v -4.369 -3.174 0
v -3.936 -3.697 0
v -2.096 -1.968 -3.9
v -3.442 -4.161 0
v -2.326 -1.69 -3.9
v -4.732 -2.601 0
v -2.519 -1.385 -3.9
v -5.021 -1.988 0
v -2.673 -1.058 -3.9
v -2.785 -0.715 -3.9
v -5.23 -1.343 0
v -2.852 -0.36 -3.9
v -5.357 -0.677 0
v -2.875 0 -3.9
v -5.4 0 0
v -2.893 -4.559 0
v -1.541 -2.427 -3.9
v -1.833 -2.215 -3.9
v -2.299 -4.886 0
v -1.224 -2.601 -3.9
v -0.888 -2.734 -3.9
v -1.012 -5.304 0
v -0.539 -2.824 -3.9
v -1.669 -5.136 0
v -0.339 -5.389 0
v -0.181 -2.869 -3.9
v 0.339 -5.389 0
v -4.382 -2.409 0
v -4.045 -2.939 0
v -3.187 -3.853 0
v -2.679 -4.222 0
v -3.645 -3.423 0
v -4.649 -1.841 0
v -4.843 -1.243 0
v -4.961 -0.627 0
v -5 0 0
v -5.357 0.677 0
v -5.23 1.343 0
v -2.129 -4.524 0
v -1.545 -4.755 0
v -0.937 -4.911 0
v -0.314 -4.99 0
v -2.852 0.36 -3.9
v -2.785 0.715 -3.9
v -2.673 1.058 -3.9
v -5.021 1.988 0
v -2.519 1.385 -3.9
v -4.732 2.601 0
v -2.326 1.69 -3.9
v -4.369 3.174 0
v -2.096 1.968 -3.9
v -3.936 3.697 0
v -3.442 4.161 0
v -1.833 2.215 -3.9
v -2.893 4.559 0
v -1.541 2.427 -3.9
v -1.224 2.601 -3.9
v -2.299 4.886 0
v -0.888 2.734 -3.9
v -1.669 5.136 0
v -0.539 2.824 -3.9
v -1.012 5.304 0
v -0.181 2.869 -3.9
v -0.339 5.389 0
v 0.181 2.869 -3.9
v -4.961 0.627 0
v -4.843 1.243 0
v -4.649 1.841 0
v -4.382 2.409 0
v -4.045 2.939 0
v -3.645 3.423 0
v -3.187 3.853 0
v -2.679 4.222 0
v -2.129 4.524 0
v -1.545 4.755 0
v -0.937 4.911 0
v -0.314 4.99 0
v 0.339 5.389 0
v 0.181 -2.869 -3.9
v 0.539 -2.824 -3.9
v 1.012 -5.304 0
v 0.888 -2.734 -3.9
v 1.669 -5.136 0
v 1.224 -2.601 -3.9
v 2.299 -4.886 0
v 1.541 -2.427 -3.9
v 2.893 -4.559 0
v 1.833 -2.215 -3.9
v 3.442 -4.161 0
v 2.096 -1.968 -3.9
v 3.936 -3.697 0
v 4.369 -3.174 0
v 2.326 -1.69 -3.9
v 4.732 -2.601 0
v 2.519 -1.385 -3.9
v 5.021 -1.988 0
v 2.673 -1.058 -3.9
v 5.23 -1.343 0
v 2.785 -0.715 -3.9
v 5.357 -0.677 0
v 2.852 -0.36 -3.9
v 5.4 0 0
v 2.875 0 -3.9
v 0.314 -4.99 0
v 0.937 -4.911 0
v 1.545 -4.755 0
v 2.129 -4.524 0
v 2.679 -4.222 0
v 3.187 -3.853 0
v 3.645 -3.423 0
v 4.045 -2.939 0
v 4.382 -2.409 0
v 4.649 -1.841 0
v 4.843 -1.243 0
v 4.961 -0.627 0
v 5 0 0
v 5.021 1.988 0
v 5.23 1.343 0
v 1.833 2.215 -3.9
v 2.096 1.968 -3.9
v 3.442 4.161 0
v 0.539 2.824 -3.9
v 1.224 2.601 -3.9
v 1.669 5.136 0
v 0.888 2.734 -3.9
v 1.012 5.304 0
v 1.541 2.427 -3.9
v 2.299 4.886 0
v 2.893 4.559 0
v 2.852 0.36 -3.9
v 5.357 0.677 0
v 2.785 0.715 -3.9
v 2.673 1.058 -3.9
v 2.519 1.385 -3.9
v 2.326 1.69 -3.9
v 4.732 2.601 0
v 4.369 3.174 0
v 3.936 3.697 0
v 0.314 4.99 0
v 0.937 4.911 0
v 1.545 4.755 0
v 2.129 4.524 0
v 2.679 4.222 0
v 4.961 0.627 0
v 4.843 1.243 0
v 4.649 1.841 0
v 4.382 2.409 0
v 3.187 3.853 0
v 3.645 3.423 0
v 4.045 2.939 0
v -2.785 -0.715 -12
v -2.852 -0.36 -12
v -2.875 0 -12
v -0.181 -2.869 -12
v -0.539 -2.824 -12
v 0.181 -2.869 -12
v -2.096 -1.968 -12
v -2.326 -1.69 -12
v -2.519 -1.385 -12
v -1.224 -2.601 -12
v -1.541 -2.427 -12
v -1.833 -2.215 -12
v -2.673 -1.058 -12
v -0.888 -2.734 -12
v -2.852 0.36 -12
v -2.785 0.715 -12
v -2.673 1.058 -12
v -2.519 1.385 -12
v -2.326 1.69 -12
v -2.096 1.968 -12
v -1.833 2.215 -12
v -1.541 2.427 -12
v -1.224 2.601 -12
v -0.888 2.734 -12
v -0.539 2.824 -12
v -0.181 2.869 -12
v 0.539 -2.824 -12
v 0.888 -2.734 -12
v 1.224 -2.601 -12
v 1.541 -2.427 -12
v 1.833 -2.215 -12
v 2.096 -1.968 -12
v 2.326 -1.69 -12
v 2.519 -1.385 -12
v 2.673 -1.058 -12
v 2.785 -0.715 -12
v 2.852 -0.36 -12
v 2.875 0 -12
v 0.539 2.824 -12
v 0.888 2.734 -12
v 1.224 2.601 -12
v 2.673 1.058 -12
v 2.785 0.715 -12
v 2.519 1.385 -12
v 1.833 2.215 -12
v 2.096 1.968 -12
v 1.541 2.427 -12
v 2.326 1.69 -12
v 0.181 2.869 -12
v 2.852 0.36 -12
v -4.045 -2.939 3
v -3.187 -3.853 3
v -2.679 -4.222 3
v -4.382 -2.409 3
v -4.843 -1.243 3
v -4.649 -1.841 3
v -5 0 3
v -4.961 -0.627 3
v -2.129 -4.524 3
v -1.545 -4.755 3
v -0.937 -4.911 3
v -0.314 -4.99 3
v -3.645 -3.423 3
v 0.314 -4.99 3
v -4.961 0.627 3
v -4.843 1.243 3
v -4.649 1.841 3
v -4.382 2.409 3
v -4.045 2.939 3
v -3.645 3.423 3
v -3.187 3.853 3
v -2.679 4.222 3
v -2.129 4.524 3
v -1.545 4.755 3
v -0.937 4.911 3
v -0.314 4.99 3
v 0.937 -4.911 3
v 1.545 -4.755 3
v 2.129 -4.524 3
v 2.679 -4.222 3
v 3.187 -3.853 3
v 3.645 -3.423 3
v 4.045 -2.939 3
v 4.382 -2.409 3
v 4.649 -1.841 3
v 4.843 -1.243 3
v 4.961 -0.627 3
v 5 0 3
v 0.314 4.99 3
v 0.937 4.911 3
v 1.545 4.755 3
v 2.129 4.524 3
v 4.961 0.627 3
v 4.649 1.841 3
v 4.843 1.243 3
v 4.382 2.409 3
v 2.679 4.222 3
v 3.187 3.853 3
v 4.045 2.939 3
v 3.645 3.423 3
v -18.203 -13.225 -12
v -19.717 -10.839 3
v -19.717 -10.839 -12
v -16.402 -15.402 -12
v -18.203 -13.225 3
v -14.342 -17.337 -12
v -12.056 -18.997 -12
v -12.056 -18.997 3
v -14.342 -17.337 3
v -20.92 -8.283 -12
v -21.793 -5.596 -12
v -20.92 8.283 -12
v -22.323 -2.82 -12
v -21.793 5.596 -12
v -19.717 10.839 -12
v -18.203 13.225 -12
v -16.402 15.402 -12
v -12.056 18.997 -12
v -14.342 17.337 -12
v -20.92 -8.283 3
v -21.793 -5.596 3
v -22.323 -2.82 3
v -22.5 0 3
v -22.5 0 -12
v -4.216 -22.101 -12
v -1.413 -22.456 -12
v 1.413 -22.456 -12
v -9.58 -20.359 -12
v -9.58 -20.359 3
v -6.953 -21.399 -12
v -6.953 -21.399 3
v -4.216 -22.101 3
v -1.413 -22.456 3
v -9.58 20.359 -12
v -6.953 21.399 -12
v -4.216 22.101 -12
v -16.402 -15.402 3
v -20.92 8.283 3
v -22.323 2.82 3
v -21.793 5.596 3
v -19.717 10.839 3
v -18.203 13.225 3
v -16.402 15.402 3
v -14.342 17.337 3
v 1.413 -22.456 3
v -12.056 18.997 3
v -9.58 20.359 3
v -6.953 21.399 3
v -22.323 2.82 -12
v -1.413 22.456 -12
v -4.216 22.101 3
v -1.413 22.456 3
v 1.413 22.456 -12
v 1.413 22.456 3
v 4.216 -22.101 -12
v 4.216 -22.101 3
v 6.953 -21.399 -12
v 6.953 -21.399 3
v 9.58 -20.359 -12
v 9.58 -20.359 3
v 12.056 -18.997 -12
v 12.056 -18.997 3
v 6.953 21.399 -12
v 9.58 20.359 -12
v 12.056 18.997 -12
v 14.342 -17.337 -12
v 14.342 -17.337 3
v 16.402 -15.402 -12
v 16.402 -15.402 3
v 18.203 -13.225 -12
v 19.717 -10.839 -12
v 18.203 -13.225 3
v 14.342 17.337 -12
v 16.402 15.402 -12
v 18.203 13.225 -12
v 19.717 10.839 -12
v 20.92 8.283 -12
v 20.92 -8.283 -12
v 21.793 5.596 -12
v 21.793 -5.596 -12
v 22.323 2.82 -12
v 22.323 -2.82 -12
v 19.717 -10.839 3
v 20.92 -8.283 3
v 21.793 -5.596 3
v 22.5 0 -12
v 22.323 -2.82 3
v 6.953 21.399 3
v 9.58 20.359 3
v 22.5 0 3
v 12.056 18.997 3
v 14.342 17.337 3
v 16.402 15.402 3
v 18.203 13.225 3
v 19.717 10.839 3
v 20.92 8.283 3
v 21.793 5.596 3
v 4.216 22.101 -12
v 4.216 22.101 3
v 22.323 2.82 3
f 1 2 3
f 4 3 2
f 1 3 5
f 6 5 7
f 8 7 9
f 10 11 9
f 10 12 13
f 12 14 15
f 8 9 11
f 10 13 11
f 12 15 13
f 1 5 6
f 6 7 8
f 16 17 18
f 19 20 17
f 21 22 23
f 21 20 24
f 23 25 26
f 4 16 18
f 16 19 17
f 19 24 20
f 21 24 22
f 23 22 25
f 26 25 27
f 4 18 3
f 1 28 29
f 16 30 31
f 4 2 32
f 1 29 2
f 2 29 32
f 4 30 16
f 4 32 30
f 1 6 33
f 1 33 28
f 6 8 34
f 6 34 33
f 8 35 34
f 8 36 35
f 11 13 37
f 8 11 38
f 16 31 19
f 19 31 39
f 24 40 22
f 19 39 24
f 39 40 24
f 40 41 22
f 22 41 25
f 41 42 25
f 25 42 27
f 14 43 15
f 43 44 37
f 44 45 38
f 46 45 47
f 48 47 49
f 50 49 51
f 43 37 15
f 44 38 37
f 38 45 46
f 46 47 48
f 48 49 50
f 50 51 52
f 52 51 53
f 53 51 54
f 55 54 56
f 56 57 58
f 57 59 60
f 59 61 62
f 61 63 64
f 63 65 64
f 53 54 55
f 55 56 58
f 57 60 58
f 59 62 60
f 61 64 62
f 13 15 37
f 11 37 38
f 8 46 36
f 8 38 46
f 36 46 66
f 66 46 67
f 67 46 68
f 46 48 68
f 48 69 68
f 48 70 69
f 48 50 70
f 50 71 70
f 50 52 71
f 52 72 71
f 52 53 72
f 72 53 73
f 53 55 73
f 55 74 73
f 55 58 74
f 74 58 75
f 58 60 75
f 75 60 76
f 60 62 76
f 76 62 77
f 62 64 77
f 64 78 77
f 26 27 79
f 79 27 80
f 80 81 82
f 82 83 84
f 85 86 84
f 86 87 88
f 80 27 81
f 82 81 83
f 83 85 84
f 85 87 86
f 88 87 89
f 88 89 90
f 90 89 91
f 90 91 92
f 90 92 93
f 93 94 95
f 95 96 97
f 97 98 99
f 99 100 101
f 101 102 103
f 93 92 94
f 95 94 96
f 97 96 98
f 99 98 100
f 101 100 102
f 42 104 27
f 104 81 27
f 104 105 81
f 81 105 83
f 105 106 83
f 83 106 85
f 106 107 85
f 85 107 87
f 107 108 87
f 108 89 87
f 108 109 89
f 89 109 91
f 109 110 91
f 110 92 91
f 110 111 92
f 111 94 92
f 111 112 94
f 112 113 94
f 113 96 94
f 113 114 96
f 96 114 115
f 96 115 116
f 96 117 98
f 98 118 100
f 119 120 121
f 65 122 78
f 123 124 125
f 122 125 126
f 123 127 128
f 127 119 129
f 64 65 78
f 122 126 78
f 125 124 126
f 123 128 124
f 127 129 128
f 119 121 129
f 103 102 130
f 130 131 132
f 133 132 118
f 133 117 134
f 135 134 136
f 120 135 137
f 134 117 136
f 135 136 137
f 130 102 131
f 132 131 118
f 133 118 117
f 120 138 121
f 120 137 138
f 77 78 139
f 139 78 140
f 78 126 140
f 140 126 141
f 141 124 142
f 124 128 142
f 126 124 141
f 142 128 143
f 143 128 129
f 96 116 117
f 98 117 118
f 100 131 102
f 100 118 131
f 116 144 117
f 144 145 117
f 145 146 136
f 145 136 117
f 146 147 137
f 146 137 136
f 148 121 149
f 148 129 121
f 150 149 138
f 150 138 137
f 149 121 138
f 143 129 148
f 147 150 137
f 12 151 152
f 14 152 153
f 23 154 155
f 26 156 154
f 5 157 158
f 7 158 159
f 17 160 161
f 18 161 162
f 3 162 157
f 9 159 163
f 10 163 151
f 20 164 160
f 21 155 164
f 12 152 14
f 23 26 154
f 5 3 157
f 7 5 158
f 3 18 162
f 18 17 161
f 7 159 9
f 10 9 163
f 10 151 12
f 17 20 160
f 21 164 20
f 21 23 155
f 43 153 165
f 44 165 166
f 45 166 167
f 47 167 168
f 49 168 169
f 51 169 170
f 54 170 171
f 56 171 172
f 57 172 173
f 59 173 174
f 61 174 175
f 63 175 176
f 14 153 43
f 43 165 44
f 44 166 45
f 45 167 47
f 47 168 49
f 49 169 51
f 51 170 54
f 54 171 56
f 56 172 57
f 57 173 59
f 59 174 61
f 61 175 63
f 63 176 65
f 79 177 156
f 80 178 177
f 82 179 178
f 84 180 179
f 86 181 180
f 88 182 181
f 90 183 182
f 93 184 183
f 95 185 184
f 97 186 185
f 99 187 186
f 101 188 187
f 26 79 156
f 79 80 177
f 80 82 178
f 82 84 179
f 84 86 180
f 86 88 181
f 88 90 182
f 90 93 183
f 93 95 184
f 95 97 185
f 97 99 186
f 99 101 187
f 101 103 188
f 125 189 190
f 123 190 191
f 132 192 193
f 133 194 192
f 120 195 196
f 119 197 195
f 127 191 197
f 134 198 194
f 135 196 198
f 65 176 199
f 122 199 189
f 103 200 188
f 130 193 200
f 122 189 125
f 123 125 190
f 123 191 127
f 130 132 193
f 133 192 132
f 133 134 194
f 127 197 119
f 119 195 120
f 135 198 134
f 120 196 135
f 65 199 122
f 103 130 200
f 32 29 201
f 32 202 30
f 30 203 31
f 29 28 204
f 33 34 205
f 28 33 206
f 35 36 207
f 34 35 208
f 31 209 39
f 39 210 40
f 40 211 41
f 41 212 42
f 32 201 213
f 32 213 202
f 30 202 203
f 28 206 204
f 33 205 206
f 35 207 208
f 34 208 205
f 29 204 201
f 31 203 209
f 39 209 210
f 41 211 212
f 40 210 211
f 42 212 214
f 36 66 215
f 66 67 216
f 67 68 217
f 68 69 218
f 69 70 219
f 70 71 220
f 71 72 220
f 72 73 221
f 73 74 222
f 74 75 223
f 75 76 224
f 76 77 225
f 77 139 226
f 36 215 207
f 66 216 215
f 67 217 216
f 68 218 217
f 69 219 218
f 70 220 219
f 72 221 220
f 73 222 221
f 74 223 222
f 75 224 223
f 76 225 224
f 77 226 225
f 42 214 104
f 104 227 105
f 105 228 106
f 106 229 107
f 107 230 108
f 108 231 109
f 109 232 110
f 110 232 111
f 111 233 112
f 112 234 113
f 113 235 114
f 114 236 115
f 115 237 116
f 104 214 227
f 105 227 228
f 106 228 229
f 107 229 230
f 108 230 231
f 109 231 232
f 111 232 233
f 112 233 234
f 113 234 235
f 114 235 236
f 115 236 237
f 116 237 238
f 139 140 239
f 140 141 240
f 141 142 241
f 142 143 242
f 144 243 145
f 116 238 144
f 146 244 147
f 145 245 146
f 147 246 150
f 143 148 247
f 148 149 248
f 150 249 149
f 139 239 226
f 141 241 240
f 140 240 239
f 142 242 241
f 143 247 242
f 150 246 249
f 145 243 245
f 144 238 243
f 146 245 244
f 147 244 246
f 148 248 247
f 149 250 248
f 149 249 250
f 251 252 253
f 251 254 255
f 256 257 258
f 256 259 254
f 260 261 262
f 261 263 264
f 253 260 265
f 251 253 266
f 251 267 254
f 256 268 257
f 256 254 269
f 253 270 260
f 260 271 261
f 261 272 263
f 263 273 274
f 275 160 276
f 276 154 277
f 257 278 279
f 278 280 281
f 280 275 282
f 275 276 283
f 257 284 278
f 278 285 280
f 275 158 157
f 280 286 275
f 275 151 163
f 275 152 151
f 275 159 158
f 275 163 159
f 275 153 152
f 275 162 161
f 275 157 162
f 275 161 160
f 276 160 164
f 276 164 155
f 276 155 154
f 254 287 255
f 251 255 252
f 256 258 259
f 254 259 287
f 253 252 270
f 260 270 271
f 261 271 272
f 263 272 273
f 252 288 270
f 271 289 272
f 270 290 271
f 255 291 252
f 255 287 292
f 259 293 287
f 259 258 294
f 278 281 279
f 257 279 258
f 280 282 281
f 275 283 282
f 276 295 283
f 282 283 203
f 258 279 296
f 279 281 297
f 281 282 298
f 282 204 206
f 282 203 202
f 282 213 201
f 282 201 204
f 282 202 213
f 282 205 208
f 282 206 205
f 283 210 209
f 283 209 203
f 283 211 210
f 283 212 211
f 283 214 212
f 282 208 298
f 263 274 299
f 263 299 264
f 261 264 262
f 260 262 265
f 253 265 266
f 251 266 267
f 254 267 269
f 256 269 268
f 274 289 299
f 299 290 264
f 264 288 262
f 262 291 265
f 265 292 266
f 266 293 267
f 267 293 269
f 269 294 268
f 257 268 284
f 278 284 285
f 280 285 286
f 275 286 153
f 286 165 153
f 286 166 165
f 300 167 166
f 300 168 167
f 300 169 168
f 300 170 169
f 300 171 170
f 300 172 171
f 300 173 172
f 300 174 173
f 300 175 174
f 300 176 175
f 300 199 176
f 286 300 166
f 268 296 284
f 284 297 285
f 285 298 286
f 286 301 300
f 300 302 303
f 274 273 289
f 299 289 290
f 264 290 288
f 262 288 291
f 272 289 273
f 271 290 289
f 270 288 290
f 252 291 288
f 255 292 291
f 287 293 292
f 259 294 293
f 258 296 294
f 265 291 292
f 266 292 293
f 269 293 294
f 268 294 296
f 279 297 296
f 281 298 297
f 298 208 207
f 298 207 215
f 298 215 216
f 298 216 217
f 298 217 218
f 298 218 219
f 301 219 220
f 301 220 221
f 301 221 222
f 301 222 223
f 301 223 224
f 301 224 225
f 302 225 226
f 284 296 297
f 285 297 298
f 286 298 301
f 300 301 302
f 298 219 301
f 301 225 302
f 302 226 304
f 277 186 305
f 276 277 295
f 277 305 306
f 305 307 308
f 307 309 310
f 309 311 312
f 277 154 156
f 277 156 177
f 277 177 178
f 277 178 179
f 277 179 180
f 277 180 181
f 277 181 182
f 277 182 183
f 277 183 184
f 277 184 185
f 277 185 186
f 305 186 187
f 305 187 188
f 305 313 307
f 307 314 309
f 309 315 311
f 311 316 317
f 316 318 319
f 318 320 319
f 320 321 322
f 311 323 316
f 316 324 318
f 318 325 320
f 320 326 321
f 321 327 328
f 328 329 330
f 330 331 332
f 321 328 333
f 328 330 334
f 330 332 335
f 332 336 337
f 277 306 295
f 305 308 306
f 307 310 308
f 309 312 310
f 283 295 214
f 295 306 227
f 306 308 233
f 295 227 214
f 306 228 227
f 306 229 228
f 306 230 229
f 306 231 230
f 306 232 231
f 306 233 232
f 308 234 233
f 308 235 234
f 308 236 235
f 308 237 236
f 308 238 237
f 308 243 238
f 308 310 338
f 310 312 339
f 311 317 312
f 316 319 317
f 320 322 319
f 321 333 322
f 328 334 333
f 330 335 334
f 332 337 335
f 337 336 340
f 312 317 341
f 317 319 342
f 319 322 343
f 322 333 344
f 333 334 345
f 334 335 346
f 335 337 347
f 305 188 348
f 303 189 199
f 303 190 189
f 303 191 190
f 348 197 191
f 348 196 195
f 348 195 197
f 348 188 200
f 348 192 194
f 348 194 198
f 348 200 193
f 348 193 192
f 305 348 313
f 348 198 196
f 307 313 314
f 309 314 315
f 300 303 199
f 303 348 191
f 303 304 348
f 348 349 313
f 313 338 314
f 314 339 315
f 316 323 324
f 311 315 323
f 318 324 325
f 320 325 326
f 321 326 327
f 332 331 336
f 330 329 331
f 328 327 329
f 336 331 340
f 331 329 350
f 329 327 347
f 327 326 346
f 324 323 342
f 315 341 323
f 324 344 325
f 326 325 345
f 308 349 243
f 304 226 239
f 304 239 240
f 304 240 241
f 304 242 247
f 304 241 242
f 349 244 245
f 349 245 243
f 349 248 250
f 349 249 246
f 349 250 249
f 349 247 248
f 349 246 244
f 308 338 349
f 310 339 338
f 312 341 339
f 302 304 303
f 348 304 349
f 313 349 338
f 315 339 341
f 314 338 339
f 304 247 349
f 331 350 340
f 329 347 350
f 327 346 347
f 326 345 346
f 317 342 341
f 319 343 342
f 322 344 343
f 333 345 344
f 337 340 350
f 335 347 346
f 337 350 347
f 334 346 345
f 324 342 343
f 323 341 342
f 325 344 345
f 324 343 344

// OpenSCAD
$fn = 50;


difference() {
	union() {
		translate(v = [0, 0, -12.0000000000]) {
			cylinder(h = 15, r = 22.5000000000);
		}
	}
	union() {
		translate(v = [0, 0, 0]) {
			rotate(a = [0, 0, 0]) {
				difference() {
					union() {
						translate(v = [0, 0, -15.0000000000]) {
							cylinder(h = 15, r = 2.6000000000);
						}
						translate(v = [0, 0, -3.9000000000]) {
							cylinder(h = 3.9000000000, r1 = 2.8750000000, r2 = 5.4000000000);
						}
						translate(v = [0, 0, -15.0000000000]) {
							cylinder(h = 15, r = 2.8750000000);
						}
						translate(v = [0, 0, -15.0000000000]) {
							cylinder(h = 15, r = 2.6000000000);
						}
					}
					union();
				}
			}
		}
		#cylinder(h = 3, r = 5.0000000000);
	}
}
